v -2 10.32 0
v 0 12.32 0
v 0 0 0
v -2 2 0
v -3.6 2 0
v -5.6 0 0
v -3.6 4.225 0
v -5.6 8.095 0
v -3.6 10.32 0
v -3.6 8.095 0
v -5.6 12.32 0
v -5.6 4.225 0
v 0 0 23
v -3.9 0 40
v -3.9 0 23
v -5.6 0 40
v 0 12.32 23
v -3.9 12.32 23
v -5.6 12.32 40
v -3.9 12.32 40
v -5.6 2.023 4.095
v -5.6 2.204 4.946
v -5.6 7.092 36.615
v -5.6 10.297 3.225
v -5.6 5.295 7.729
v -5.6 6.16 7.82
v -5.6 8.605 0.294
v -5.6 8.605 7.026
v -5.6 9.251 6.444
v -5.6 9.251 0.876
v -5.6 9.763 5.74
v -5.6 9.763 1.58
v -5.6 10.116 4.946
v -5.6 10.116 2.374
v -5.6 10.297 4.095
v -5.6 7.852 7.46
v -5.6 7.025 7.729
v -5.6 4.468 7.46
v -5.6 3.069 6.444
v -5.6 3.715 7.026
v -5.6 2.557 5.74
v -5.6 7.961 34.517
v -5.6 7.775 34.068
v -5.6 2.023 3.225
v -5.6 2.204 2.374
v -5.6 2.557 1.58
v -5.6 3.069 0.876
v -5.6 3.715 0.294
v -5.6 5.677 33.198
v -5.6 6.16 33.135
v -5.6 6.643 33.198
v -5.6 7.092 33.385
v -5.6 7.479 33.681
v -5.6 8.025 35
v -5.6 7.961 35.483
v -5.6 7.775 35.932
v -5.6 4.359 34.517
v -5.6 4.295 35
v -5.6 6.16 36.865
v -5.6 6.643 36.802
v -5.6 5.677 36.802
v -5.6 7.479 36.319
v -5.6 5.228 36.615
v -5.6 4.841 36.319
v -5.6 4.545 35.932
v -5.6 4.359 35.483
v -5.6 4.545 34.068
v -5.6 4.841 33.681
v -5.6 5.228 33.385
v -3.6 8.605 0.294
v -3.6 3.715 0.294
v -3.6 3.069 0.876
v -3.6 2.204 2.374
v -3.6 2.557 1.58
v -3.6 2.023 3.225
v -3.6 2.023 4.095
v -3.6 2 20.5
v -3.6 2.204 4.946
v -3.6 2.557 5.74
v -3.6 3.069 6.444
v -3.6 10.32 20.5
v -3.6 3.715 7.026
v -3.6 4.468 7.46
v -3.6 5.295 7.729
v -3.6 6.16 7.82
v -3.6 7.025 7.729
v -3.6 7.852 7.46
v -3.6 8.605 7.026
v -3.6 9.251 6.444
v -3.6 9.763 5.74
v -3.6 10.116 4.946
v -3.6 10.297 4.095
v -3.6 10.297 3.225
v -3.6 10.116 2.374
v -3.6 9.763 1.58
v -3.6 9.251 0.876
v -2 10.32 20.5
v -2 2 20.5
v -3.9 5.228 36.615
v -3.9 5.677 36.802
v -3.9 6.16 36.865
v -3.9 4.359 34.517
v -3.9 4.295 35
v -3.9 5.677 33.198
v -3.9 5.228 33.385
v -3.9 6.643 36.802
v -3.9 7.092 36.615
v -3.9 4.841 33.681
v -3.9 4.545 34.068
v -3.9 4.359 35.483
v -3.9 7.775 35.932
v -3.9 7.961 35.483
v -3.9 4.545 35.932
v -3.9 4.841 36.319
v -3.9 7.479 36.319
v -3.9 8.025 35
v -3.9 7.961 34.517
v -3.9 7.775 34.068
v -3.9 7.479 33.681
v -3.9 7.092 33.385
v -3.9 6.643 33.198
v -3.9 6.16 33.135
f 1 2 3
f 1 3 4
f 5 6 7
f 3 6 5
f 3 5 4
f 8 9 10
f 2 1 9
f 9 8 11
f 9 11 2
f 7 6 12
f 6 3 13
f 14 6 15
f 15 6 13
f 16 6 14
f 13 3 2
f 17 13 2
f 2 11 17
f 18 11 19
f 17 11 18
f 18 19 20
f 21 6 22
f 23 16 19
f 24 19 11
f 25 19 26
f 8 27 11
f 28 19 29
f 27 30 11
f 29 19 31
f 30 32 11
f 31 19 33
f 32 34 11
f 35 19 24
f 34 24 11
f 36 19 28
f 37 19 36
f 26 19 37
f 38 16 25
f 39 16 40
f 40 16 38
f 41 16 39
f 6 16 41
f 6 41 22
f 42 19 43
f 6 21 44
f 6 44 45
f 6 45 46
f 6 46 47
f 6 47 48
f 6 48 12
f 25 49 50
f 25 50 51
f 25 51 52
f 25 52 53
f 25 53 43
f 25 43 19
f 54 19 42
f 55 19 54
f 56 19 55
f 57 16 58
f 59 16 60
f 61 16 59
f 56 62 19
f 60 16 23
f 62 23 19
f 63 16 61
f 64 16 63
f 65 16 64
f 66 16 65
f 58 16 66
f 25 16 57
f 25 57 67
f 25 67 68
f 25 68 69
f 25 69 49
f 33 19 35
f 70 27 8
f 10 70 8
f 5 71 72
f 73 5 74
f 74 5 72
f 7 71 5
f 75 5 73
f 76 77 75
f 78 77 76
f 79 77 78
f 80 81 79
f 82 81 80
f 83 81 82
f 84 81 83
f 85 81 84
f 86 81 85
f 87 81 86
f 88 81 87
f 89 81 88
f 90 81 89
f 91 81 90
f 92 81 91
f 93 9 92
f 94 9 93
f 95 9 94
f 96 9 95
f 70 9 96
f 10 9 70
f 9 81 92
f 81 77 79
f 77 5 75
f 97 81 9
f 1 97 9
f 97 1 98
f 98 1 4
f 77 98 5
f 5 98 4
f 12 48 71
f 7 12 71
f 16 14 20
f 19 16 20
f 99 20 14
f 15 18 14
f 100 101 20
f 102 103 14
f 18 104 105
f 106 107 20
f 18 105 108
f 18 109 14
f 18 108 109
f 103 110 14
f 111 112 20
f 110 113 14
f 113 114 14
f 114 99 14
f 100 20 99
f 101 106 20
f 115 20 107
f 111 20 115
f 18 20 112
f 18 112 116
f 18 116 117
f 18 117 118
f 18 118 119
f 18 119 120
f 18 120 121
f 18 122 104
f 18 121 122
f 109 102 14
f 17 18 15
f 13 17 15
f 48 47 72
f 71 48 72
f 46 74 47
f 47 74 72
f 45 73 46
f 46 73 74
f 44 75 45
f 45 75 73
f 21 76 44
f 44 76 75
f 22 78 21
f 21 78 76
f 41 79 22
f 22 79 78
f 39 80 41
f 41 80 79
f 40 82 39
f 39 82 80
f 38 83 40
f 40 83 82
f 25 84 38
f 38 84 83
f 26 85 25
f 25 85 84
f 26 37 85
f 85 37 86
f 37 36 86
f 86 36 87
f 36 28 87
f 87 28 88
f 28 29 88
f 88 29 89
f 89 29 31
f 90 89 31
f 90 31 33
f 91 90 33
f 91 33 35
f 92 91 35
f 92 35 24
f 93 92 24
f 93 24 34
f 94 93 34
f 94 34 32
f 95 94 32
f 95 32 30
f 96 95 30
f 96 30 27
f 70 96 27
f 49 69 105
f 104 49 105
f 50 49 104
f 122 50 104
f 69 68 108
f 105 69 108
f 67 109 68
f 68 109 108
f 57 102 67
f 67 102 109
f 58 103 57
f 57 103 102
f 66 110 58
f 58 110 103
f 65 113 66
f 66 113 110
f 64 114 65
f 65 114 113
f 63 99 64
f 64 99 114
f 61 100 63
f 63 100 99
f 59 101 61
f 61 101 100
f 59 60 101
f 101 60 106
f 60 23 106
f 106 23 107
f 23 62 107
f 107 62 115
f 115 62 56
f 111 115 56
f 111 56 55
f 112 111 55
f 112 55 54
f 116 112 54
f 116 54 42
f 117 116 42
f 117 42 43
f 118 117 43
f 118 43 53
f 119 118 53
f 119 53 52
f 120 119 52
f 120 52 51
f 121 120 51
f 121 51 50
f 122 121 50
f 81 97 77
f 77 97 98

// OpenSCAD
head_diameter = 7.32;
head_radius = head_diameter / 2;
head_height = 4.3;
arm_height = 1.6;
arm_length = 20;
offset=0.1;
wire_diameter=2.73;
wire_radius = 0.5*wire_diameter;


wall_width = 2;
give = 0.5;

component_width = head_diameter + 2*give + 2*wall_width;
component_height = arm_height + 2*wall_width;
component_length = 40;

rotate(-90, [0,1,0]){
difference(){
	cube([component_length, component_width, component_height]);
	translate([-offset, wall_width, wall_width]){
		cube([
			arm_length+offset+give,
			head_diameter+2*give,
			arm_height
		]);
	}
	translate([head_radius, 0.5*component_width, arm_height+2*give]){
		cylinder(r=head_radius+give, h=component_height, $fs=0.5);
	}
	translate([component_length-(17),-offset,-offset]){
		cube([component_length, component_width+2*offset, component_height-arm_height]);
		translate([12,0.5*component_width+offset,0]){
			cylinder(r=wire_radius+give, h=component_height+2*offset, $fs=0.5);
		}
	}
}

}
